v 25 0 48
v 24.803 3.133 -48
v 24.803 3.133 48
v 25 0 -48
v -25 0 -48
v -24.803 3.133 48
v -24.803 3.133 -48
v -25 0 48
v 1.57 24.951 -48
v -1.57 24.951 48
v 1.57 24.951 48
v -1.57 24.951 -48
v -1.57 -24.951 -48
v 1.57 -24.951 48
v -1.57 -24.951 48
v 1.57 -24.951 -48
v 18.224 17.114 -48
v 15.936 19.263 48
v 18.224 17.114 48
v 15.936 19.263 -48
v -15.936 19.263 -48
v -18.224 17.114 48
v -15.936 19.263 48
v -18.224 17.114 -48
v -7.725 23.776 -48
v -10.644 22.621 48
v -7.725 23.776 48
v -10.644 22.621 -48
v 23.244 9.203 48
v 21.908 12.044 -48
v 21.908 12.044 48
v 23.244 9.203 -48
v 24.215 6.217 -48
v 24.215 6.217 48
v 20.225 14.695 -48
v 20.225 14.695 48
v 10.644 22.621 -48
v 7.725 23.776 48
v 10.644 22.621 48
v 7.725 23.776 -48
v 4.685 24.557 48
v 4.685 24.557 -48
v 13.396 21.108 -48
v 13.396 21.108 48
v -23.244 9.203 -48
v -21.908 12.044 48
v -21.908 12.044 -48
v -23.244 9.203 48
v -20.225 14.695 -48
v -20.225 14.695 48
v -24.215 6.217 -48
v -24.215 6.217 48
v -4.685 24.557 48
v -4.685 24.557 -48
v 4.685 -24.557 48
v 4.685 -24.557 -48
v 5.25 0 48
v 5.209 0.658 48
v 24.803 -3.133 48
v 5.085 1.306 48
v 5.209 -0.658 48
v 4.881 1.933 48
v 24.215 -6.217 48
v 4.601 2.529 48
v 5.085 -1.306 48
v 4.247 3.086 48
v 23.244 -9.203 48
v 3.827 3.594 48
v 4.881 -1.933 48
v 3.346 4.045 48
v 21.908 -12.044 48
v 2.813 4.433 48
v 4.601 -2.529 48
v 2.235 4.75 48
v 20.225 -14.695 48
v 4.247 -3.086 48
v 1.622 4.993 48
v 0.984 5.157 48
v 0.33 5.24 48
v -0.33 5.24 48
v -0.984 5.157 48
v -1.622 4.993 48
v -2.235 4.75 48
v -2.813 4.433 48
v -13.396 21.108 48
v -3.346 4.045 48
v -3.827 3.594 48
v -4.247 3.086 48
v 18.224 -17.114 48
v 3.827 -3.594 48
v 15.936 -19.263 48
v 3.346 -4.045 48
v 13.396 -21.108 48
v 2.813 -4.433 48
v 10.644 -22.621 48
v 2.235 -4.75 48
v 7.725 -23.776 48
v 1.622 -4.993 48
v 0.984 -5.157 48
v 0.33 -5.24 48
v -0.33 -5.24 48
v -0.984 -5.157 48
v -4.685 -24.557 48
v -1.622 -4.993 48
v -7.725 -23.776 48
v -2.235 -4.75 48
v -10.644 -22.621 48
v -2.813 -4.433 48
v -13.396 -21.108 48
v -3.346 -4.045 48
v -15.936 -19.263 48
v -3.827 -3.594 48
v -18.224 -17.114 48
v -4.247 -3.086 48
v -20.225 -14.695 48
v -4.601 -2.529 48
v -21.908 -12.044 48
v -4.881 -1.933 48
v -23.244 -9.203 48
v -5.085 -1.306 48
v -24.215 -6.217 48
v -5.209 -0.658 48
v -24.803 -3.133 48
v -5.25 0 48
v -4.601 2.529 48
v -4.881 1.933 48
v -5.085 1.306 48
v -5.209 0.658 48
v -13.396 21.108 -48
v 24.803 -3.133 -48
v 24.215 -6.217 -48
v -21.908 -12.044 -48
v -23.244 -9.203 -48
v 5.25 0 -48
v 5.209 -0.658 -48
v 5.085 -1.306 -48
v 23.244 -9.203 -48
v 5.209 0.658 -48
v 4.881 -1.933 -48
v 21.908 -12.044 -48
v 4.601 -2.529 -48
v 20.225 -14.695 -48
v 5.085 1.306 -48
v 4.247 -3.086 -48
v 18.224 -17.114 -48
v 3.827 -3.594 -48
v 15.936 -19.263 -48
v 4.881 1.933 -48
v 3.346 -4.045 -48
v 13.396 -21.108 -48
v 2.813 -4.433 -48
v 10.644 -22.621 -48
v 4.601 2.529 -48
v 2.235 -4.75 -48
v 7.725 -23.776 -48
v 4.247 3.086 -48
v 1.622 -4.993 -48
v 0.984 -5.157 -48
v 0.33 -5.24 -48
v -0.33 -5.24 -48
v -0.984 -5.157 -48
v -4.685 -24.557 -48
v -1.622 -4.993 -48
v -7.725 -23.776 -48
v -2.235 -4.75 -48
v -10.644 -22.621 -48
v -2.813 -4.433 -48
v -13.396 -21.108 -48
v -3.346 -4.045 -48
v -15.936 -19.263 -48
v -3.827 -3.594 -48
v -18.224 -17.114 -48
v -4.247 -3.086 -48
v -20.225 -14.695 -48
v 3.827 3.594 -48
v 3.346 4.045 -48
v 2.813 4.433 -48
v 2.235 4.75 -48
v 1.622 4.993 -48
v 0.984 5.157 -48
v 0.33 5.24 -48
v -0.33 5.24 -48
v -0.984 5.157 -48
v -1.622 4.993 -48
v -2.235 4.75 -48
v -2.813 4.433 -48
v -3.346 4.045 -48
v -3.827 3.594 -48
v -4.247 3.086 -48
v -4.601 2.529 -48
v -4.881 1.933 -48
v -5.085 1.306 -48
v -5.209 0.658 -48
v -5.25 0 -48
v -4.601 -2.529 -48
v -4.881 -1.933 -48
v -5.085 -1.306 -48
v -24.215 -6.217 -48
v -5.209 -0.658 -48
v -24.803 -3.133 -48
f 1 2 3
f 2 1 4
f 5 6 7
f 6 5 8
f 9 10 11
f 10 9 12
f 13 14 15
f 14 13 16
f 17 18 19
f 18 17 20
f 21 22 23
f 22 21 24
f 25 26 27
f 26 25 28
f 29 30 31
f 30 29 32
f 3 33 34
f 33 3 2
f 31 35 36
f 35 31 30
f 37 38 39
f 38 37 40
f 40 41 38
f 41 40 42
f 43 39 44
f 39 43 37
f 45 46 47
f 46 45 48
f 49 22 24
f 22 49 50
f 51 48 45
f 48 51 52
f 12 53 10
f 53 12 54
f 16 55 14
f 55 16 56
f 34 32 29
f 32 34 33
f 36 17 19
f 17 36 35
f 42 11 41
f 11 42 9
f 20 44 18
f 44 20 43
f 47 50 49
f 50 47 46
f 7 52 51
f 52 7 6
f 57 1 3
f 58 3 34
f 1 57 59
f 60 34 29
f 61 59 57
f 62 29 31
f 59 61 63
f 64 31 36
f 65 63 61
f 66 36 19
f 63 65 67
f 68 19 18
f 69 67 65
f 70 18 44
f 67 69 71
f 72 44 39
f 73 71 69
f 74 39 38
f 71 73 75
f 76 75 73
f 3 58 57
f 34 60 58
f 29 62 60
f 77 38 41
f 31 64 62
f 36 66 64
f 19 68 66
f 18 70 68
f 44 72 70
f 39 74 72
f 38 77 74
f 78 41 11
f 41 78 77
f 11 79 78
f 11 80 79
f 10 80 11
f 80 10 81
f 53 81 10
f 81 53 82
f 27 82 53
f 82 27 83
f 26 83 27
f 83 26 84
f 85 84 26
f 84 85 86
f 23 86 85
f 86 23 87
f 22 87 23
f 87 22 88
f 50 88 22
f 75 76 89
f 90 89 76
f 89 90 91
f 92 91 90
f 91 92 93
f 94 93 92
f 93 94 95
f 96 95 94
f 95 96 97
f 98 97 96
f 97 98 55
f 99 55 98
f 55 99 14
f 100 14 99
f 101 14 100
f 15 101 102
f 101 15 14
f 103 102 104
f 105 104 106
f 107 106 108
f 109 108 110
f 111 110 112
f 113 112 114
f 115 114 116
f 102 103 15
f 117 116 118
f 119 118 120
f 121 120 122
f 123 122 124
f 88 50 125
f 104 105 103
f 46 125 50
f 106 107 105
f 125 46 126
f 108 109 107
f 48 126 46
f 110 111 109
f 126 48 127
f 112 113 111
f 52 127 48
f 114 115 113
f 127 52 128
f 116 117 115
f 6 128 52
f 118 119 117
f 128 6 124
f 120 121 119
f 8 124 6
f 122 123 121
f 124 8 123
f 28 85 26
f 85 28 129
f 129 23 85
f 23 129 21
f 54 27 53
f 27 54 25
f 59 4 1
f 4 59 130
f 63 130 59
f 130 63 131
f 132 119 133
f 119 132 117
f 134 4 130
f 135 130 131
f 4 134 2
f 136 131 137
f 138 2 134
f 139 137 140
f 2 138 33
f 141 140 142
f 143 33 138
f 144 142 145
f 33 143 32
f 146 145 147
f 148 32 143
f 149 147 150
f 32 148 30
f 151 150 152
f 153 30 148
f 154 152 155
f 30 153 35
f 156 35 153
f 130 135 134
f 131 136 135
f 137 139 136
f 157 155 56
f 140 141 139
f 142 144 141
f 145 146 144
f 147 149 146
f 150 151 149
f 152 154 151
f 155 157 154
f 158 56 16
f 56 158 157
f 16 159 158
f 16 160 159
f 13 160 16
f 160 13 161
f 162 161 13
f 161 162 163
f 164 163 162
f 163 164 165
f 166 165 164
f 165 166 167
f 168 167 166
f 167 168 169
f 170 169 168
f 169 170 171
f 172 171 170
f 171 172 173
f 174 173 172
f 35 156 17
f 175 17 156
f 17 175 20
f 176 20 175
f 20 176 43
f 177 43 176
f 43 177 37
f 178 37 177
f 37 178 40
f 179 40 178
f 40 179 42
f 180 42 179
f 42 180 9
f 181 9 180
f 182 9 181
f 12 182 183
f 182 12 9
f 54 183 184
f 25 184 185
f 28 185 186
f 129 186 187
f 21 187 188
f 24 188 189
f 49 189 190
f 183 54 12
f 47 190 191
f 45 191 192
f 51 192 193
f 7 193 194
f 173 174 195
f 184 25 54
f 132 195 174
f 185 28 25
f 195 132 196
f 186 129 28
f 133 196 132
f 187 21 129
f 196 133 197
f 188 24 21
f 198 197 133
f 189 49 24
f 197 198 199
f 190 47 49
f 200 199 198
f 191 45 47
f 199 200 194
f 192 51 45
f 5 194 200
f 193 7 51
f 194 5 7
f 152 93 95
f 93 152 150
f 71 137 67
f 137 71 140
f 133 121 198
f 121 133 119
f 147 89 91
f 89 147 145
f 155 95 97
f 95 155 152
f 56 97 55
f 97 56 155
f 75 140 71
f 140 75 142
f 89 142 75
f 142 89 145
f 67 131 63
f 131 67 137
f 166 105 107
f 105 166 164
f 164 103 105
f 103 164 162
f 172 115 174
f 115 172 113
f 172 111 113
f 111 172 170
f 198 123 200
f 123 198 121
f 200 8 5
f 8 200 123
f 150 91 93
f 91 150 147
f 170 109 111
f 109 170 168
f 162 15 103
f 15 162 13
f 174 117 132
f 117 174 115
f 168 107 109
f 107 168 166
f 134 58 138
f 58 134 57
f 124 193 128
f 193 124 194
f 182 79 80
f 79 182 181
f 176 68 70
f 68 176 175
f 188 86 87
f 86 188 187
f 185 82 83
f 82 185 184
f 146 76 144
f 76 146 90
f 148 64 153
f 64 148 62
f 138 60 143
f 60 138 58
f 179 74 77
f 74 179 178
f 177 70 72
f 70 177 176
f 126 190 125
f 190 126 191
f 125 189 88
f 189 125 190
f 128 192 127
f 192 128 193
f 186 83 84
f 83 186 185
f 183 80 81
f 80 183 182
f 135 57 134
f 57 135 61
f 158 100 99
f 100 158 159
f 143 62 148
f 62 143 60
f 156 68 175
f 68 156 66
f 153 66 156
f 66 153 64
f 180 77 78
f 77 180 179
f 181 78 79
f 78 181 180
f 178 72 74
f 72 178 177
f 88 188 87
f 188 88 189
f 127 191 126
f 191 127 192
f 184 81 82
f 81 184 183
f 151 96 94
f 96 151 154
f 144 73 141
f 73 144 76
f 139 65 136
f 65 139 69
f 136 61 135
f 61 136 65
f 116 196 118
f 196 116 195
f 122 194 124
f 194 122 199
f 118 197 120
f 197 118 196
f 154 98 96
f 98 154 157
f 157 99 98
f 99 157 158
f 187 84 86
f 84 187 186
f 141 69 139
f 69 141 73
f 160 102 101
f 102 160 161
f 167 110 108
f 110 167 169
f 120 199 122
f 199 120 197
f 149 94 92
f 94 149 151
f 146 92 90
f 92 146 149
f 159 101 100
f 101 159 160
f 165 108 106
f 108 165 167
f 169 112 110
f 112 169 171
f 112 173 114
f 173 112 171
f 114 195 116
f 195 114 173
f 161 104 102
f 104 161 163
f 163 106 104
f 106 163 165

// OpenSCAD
$fn = 50;


difference() {
	union() {
		translate(v = [0, 0, -48.0000000000]) {
			cylinder(h = 96, r = 25.0000000000);
		}
	}
	union() {
		translate(v = [0, 0, -100.0000000000]) {
			cylinder(h = 200, r = 5.2500000000);
		}
	}
}
